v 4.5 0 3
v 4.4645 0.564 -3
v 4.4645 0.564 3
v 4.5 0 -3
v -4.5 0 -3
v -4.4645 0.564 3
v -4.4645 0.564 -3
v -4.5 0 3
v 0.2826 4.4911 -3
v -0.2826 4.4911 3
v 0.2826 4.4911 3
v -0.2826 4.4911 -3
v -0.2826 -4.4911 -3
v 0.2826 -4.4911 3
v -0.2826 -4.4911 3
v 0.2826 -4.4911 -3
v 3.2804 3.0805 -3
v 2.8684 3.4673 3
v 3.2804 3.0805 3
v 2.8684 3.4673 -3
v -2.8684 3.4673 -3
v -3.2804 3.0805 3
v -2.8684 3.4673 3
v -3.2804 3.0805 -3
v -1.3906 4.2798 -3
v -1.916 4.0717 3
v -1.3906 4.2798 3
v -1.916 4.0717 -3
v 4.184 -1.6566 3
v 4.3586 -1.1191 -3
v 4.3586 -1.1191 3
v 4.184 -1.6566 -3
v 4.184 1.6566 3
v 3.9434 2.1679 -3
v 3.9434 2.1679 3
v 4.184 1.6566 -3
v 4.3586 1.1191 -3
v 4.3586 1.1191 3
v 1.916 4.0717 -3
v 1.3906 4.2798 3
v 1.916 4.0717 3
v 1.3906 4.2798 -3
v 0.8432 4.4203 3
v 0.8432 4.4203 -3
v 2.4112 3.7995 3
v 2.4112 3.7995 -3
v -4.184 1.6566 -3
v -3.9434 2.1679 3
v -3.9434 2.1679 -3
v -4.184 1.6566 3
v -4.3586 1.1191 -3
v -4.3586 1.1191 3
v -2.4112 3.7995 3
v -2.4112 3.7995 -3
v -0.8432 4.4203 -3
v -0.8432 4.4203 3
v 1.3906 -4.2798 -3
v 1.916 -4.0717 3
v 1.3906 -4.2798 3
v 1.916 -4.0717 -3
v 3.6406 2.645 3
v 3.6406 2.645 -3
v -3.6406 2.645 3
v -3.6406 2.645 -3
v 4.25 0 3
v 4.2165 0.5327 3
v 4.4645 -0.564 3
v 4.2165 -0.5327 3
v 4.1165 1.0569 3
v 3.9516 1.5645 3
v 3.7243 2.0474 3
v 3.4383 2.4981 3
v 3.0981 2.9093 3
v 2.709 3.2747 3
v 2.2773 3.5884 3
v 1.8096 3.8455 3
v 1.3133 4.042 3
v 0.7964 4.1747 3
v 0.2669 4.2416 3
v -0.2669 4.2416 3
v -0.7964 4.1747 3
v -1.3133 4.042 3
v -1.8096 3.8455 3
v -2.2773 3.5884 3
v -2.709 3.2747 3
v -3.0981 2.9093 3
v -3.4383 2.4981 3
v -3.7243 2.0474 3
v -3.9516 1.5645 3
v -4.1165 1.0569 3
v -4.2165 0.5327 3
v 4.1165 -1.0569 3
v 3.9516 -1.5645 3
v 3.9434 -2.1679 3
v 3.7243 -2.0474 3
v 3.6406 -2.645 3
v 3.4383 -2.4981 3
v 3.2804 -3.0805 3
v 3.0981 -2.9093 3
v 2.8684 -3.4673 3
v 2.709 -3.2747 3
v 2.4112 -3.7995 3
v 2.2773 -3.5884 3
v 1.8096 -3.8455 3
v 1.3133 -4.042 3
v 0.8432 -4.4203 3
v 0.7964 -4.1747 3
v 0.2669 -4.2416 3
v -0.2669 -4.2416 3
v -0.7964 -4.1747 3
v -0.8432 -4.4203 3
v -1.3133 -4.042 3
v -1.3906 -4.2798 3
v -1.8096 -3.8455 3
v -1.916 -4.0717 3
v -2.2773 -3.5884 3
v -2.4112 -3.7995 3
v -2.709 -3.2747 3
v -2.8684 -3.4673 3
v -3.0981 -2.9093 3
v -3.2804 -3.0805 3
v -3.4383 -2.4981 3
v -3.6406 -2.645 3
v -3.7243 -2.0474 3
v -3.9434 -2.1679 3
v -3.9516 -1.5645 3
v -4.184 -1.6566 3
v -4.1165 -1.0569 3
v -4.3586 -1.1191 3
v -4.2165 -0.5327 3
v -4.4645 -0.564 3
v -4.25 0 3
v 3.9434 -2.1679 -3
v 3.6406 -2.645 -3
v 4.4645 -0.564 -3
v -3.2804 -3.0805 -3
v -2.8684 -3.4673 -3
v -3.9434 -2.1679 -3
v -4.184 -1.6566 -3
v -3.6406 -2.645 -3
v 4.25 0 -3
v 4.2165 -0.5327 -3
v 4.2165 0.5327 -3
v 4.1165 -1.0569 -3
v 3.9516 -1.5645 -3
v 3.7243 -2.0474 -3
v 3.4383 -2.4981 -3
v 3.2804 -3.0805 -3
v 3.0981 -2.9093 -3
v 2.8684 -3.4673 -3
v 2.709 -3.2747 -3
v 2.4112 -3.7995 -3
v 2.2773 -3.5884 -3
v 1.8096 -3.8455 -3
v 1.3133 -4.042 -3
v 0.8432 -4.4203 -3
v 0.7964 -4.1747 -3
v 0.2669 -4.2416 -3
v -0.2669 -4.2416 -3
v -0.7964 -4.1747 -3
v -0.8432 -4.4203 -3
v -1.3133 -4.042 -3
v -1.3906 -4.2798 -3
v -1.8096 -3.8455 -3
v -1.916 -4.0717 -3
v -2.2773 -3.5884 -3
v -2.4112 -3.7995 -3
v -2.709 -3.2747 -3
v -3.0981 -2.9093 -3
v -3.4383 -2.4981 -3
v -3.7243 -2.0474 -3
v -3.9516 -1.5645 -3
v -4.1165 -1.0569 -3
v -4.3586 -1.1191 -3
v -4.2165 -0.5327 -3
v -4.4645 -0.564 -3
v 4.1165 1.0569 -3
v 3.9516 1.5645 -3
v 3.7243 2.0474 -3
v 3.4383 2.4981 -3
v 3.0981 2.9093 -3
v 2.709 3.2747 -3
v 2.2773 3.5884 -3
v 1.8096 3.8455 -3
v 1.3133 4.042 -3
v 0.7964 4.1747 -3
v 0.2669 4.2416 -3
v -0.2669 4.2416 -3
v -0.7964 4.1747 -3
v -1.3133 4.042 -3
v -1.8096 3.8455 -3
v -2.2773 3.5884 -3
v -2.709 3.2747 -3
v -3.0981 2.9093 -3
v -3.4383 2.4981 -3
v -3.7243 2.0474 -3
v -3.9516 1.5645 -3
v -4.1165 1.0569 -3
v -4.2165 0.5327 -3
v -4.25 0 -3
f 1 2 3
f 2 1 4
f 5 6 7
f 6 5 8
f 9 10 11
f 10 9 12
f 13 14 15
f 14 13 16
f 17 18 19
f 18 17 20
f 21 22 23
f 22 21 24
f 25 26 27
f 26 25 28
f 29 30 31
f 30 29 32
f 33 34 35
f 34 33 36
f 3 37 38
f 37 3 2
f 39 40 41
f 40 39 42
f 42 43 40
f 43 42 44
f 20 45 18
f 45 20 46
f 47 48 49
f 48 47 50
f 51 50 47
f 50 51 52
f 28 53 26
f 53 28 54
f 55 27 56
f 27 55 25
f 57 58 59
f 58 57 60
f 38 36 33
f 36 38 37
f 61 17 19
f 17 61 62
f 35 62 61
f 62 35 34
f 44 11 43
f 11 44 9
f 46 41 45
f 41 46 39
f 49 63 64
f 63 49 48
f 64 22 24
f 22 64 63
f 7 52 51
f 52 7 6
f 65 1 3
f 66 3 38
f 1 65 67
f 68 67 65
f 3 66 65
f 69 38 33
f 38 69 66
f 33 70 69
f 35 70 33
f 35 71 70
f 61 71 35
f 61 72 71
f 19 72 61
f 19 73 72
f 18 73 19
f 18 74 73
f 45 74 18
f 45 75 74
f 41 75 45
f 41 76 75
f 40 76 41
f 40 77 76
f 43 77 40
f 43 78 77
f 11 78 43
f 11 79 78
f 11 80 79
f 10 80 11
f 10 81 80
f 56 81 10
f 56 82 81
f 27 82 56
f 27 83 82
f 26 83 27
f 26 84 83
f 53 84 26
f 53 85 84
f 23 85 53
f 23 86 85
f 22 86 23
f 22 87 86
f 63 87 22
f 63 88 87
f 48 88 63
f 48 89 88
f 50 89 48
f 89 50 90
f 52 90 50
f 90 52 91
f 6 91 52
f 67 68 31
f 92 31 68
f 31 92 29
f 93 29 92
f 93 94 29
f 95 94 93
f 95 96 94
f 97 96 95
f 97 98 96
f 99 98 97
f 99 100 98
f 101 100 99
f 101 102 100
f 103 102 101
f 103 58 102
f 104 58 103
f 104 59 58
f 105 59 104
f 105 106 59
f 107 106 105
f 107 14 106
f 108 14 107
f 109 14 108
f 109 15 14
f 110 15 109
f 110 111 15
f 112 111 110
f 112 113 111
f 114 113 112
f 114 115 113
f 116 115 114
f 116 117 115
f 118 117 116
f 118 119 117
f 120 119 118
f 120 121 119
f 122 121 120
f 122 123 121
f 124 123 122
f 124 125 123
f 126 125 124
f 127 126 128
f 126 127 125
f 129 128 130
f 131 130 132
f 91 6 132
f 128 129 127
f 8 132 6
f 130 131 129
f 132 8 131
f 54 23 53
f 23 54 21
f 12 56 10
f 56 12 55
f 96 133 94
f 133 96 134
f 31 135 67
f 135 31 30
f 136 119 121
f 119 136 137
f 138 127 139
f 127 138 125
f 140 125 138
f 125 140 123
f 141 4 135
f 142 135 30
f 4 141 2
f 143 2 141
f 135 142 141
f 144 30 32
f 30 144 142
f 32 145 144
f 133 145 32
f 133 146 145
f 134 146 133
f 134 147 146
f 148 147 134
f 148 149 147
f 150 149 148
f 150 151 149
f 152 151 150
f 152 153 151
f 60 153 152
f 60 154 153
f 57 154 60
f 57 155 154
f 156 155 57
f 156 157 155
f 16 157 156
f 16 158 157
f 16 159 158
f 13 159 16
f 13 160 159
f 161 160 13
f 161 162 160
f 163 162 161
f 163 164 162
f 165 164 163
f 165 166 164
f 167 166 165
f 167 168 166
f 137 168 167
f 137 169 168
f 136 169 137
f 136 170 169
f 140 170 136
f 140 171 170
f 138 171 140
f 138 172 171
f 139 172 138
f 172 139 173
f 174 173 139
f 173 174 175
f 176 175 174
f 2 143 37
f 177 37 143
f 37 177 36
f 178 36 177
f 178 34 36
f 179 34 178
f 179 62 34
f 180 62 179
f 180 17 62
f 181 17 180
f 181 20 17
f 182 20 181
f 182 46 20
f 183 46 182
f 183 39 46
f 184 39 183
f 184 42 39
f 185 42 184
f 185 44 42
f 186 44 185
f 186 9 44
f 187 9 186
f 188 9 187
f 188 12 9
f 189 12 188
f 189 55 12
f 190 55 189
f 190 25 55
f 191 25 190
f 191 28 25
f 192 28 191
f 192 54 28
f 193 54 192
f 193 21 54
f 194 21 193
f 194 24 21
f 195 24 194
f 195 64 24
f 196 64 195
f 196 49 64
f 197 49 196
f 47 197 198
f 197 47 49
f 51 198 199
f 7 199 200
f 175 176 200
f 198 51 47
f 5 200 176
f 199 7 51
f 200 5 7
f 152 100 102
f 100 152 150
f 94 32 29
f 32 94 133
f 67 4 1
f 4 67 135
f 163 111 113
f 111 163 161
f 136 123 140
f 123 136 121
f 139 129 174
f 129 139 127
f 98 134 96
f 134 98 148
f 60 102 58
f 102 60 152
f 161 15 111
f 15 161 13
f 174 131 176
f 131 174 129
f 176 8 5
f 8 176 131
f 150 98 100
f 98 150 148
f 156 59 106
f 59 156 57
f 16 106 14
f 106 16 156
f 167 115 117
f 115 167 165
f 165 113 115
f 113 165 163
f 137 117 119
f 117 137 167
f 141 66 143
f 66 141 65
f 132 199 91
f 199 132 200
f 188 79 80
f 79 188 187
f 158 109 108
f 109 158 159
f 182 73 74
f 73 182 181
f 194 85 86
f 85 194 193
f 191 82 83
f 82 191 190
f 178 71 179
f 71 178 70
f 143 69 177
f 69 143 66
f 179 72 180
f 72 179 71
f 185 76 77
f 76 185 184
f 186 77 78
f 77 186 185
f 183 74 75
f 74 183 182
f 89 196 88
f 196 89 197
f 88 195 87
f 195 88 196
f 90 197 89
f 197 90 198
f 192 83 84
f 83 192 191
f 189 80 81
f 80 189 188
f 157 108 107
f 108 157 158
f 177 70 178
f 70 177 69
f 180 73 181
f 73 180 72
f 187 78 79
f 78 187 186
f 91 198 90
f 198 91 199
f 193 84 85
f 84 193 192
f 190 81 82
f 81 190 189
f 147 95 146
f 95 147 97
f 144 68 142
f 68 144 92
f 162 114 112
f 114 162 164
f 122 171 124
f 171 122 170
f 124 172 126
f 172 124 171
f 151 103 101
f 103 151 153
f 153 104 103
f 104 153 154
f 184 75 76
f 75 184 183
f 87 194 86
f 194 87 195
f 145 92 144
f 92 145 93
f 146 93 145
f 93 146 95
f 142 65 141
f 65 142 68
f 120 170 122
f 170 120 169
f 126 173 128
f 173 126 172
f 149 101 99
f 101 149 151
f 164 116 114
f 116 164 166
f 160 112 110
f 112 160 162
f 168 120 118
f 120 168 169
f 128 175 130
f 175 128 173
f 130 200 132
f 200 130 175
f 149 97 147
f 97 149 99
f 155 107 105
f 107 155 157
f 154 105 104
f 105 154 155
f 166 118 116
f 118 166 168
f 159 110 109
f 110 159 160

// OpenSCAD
$fn = 50;


difference() {
	union() {
		translate(v = [0, 0, -3.0000000000]) {
			cylinder(h = 6, r = 4.5000000000);
		}
	}
	union() {
		translate(v = [0, 0, -100.0000000000]) {
			cylinder(h = 200, r = 4.2500000000);
		}
	}
}
